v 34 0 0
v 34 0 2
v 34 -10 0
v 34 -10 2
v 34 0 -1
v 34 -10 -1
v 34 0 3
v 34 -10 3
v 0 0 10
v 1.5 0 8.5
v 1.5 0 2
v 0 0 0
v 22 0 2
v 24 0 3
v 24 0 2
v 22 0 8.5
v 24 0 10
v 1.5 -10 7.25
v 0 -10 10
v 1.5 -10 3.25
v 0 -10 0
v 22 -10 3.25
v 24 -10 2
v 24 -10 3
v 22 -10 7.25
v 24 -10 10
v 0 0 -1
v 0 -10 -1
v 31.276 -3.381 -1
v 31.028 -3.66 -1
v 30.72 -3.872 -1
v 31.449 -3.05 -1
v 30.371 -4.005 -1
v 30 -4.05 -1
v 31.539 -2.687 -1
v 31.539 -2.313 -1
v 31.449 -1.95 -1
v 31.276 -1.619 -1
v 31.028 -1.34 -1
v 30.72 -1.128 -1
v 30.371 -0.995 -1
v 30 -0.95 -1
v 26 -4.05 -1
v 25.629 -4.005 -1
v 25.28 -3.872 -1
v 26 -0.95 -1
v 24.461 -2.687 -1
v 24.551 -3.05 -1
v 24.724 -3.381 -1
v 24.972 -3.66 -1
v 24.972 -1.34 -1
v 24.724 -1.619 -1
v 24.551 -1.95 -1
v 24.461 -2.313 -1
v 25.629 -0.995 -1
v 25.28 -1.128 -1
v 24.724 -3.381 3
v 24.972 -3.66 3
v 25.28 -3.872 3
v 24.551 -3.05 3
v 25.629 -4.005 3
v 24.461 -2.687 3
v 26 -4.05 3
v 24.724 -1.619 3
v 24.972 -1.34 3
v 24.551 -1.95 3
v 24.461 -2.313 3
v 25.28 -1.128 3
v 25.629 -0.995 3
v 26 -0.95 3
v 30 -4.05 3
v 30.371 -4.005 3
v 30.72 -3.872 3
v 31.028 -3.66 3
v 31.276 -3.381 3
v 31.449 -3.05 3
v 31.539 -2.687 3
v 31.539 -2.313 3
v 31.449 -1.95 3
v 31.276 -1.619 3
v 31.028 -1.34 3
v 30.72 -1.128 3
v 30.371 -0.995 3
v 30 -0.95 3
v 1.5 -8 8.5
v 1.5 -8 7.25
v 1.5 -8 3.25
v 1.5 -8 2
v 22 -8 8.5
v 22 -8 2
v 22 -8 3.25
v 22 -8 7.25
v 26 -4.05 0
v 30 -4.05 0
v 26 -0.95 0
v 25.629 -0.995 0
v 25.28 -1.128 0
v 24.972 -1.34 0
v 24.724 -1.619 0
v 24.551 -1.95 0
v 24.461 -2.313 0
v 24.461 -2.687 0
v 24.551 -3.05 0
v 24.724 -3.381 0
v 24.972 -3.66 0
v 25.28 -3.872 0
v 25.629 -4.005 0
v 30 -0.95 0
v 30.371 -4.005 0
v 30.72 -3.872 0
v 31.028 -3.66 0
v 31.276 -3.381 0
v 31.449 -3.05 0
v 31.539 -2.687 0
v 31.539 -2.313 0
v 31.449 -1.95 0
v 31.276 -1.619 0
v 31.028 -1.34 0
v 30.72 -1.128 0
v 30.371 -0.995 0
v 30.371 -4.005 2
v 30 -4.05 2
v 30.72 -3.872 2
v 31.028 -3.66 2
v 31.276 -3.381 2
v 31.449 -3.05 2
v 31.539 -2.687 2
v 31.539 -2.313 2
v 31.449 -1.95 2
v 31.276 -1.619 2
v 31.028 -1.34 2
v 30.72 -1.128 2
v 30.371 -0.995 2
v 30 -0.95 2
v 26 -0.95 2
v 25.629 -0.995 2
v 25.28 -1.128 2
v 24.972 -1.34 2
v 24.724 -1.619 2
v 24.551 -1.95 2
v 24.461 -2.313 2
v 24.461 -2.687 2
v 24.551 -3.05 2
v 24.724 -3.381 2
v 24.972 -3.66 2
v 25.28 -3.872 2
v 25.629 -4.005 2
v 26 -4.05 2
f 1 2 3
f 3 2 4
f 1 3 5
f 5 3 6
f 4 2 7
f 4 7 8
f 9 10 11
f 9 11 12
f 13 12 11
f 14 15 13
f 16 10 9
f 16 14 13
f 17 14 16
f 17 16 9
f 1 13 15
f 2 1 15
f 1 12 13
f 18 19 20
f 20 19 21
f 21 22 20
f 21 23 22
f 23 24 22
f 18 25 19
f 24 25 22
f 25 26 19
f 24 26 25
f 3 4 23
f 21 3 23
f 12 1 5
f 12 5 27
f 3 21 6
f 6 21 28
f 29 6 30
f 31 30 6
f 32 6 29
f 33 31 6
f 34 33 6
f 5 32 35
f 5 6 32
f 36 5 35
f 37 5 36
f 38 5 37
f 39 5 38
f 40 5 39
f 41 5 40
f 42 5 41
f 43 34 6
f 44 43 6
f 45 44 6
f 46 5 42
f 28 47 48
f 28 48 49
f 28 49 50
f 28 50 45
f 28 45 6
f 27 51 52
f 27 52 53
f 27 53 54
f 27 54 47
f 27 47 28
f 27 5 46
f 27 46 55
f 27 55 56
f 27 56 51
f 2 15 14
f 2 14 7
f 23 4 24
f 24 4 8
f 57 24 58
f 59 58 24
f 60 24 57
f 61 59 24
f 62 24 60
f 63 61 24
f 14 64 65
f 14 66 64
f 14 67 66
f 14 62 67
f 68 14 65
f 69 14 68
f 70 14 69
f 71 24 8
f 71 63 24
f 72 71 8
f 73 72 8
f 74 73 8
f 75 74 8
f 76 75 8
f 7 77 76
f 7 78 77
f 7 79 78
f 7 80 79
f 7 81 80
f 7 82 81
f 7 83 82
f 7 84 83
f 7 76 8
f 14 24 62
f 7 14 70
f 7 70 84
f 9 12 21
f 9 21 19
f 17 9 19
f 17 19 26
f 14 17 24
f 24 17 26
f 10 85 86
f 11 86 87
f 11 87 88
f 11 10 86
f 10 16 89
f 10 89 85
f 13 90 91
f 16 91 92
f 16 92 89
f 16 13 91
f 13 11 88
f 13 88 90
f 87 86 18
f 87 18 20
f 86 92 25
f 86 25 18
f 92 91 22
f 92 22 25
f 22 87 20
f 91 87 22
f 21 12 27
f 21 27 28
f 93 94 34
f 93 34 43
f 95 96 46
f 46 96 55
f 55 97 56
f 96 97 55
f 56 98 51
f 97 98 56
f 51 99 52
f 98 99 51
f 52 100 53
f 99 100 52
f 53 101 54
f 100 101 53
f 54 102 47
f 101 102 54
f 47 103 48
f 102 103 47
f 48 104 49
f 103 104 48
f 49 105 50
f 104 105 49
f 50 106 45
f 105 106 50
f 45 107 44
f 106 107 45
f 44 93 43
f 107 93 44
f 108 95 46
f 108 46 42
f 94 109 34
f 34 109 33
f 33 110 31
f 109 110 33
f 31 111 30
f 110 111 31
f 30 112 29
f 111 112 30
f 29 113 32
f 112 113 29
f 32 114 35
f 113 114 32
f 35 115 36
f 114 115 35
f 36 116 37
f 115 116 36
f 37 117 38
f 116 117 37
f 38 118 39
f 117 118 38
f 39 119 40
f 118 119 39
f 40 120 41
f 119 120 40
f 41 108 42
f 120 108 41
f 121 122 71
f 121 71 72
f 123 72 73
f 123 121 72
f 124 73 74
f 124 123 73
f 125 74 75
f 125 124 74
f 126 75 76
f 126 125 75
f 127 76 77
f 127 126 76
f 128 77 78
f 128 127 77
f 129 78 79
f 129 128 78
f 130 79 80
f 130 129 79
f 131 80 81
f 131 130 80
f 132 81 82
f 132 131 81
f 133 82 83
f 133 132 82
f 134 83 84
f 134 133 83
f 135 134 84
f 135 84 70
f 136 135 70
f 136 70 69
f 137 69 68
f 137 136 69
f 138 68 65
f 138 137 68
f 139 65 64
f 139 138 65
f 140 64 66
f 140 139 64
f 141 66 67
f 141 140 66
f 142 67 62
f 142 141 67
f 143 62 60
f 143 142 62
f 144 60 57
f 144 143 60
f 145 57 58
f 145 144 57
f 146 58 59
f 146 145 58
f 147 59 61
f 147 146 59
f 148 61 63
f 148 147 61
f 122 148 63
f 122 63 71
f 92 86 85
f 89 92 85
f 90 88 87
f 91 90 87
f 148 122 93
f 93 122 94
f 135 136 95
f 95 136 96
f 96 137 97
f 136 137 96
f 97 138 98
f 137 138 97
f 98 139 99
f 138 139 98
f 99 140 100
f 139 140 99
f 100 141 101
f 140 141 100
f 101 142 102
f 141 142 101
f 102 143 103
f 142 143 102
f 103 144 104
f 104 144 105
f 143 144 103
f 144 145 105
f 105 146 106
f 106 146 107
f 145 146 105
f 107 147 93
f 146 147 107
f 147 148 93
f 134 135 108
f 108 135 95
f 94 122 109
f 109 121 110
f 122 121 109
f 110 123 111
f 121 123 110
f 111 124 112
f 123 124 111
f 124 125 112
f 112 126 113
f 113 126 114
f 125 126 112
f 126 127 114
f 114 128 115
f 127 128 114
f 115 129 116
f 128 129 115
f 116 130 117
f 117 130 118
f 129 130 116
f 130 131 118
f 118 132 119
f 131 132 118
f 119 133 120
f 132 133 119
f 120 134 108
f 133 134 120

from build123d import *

# Parameters (mm, degrees)
PAD_DEPTH         = 10
SKETCH001_W       = 20.5
SKETCH001_H       = 6.5
POCKET_DEPTH      = 8
SKETCH002_W       = 20.5
SKETCH002_H       = 4
POCKET001_DEPTH   = 5
POCKET002_DEPTH   = 5
POCKET002_FACE1_W = 10
POCKET002_FACE1_H = 34
PAD001_DEPTH      = 1
PAD001_FACE3_W    = 10
PAD001_FACE3_H    = 10
PAD002_DEPTH      = 1


with BuildPart() as part:
    # Sketch → Pad (new body)
    with BuildSketch(Plane.XZ):
        Polygon((0, 10), (24, 10), (24, 2), (34, 2), (34, 0), (0, 0), align=None)
    extrude(amount=PAD_DEPTH)

    # Sketch001 (on Face7 of Pad) → Pocket (cut)
    with BuildSketch(Plane(origin=(0, 0, 0), x_dir=(1, 0, 0), z_dir=(0, 1, 0))):
        with Locations((11.75, -5.25)):
            Rectangle(SKETCH001_W, SKETCH001_H)
    extrude(amount=-POCKET_DEPTH, mode=Mode.SUBTRACT)

    # Sketch002 (on Face13 of Pocket) → Pocket001 (cut)
    with BuildSketch(Plane(origin=(0, -8, 0), x_dir=(1, 0, 0), z_dir=(0, 1, 0))):
        with Locations((11.75, -5.25)):
            Rectangle(SKETCH002_W, SKETCH002_H)
    extrude(amount=-POCKET001_DEPTH, mode=Mode.SUBTRACT)

    # Sketch003 (on Face6 of Pocket001) → Pocket002 (cut)
    with BuildSketch(Plane(origin=(0, 0, 2), x_dir=(-1, 0, 0), z_dir=(0, 0, 1))):
        with BuildLine():
            ThreePointArc((-30, 4.05), (-31.55, 2.5), (-30, 0.95))
            Line((-30, 0.95), (-26, 0.95))
            ThreePointArc((-26, 0.95), (-24.45, 2.5), (-26, 4.05))
            Line((-26, 4.05), (-30, 4.05))
        make_face()
    extrude(amount=-POCKET002_DEPTH, mode=Mode.SUBTRACT)

    # Pocket002 Face1 → Pad001 (add)
    with BuildSketch(Plane(origin=(16.314411, -5.155816, 0), x_dir=(0, -1, 0), z_dir=(0, 0, -1))):
        with Locations((-0.155816, -0.685589)):
            Rectangle(POCKET002_FACE1_W, POCKET002_FACE1_H)
        with BuildLine():
            Line((-1.105816, -9.685589), (-1.105816, -13.685589))
            ThreePointArc((-1.105816, -13.685589), (-2.655816, -15.235589), (-4.205816, -13.685589))
            Line((-4.205816, -13.685589), (-4.205816, -9.685589))
            ThreePointArc((-4.205816, -9.685589), (-2.655816, -8.135589), (-1.105816, -9.685589))
        make_face(mode=Mode.SUBTRACT)
    extrude(amount=PAD001_DEPTH)

    # Pad001 Face3 → Pad002 (add)
    with BuildSketch(Plane(origin=(29.249183, -5.622957, 2), x_dir=(0, 1, 0), z_dir=(0, 0, 1))):
        with Locations((0.622957, 0.249183)):
            Rectangle(PAD001_FACE3_W, PAD001_FACE3_H)
        with BuildLine():
            ThreePointArc((4.672957, -0.750817), (3.122957, -2.300817), (1.572957, -0.750817))
            Line((1.572957, -0.750817), (1.572957, 3.249183))
            ThreePointArc((1.572957, 3.249183), (3.122957, 4.799183), (4.672957, 3.249183))
            Line((4.672957, 3.249183), (4.672957, -0.750817))
        make_face(mode=Mode.SUBTRACT)
    extrude(amount=PAD002_DEPTH)


solid = part.part
